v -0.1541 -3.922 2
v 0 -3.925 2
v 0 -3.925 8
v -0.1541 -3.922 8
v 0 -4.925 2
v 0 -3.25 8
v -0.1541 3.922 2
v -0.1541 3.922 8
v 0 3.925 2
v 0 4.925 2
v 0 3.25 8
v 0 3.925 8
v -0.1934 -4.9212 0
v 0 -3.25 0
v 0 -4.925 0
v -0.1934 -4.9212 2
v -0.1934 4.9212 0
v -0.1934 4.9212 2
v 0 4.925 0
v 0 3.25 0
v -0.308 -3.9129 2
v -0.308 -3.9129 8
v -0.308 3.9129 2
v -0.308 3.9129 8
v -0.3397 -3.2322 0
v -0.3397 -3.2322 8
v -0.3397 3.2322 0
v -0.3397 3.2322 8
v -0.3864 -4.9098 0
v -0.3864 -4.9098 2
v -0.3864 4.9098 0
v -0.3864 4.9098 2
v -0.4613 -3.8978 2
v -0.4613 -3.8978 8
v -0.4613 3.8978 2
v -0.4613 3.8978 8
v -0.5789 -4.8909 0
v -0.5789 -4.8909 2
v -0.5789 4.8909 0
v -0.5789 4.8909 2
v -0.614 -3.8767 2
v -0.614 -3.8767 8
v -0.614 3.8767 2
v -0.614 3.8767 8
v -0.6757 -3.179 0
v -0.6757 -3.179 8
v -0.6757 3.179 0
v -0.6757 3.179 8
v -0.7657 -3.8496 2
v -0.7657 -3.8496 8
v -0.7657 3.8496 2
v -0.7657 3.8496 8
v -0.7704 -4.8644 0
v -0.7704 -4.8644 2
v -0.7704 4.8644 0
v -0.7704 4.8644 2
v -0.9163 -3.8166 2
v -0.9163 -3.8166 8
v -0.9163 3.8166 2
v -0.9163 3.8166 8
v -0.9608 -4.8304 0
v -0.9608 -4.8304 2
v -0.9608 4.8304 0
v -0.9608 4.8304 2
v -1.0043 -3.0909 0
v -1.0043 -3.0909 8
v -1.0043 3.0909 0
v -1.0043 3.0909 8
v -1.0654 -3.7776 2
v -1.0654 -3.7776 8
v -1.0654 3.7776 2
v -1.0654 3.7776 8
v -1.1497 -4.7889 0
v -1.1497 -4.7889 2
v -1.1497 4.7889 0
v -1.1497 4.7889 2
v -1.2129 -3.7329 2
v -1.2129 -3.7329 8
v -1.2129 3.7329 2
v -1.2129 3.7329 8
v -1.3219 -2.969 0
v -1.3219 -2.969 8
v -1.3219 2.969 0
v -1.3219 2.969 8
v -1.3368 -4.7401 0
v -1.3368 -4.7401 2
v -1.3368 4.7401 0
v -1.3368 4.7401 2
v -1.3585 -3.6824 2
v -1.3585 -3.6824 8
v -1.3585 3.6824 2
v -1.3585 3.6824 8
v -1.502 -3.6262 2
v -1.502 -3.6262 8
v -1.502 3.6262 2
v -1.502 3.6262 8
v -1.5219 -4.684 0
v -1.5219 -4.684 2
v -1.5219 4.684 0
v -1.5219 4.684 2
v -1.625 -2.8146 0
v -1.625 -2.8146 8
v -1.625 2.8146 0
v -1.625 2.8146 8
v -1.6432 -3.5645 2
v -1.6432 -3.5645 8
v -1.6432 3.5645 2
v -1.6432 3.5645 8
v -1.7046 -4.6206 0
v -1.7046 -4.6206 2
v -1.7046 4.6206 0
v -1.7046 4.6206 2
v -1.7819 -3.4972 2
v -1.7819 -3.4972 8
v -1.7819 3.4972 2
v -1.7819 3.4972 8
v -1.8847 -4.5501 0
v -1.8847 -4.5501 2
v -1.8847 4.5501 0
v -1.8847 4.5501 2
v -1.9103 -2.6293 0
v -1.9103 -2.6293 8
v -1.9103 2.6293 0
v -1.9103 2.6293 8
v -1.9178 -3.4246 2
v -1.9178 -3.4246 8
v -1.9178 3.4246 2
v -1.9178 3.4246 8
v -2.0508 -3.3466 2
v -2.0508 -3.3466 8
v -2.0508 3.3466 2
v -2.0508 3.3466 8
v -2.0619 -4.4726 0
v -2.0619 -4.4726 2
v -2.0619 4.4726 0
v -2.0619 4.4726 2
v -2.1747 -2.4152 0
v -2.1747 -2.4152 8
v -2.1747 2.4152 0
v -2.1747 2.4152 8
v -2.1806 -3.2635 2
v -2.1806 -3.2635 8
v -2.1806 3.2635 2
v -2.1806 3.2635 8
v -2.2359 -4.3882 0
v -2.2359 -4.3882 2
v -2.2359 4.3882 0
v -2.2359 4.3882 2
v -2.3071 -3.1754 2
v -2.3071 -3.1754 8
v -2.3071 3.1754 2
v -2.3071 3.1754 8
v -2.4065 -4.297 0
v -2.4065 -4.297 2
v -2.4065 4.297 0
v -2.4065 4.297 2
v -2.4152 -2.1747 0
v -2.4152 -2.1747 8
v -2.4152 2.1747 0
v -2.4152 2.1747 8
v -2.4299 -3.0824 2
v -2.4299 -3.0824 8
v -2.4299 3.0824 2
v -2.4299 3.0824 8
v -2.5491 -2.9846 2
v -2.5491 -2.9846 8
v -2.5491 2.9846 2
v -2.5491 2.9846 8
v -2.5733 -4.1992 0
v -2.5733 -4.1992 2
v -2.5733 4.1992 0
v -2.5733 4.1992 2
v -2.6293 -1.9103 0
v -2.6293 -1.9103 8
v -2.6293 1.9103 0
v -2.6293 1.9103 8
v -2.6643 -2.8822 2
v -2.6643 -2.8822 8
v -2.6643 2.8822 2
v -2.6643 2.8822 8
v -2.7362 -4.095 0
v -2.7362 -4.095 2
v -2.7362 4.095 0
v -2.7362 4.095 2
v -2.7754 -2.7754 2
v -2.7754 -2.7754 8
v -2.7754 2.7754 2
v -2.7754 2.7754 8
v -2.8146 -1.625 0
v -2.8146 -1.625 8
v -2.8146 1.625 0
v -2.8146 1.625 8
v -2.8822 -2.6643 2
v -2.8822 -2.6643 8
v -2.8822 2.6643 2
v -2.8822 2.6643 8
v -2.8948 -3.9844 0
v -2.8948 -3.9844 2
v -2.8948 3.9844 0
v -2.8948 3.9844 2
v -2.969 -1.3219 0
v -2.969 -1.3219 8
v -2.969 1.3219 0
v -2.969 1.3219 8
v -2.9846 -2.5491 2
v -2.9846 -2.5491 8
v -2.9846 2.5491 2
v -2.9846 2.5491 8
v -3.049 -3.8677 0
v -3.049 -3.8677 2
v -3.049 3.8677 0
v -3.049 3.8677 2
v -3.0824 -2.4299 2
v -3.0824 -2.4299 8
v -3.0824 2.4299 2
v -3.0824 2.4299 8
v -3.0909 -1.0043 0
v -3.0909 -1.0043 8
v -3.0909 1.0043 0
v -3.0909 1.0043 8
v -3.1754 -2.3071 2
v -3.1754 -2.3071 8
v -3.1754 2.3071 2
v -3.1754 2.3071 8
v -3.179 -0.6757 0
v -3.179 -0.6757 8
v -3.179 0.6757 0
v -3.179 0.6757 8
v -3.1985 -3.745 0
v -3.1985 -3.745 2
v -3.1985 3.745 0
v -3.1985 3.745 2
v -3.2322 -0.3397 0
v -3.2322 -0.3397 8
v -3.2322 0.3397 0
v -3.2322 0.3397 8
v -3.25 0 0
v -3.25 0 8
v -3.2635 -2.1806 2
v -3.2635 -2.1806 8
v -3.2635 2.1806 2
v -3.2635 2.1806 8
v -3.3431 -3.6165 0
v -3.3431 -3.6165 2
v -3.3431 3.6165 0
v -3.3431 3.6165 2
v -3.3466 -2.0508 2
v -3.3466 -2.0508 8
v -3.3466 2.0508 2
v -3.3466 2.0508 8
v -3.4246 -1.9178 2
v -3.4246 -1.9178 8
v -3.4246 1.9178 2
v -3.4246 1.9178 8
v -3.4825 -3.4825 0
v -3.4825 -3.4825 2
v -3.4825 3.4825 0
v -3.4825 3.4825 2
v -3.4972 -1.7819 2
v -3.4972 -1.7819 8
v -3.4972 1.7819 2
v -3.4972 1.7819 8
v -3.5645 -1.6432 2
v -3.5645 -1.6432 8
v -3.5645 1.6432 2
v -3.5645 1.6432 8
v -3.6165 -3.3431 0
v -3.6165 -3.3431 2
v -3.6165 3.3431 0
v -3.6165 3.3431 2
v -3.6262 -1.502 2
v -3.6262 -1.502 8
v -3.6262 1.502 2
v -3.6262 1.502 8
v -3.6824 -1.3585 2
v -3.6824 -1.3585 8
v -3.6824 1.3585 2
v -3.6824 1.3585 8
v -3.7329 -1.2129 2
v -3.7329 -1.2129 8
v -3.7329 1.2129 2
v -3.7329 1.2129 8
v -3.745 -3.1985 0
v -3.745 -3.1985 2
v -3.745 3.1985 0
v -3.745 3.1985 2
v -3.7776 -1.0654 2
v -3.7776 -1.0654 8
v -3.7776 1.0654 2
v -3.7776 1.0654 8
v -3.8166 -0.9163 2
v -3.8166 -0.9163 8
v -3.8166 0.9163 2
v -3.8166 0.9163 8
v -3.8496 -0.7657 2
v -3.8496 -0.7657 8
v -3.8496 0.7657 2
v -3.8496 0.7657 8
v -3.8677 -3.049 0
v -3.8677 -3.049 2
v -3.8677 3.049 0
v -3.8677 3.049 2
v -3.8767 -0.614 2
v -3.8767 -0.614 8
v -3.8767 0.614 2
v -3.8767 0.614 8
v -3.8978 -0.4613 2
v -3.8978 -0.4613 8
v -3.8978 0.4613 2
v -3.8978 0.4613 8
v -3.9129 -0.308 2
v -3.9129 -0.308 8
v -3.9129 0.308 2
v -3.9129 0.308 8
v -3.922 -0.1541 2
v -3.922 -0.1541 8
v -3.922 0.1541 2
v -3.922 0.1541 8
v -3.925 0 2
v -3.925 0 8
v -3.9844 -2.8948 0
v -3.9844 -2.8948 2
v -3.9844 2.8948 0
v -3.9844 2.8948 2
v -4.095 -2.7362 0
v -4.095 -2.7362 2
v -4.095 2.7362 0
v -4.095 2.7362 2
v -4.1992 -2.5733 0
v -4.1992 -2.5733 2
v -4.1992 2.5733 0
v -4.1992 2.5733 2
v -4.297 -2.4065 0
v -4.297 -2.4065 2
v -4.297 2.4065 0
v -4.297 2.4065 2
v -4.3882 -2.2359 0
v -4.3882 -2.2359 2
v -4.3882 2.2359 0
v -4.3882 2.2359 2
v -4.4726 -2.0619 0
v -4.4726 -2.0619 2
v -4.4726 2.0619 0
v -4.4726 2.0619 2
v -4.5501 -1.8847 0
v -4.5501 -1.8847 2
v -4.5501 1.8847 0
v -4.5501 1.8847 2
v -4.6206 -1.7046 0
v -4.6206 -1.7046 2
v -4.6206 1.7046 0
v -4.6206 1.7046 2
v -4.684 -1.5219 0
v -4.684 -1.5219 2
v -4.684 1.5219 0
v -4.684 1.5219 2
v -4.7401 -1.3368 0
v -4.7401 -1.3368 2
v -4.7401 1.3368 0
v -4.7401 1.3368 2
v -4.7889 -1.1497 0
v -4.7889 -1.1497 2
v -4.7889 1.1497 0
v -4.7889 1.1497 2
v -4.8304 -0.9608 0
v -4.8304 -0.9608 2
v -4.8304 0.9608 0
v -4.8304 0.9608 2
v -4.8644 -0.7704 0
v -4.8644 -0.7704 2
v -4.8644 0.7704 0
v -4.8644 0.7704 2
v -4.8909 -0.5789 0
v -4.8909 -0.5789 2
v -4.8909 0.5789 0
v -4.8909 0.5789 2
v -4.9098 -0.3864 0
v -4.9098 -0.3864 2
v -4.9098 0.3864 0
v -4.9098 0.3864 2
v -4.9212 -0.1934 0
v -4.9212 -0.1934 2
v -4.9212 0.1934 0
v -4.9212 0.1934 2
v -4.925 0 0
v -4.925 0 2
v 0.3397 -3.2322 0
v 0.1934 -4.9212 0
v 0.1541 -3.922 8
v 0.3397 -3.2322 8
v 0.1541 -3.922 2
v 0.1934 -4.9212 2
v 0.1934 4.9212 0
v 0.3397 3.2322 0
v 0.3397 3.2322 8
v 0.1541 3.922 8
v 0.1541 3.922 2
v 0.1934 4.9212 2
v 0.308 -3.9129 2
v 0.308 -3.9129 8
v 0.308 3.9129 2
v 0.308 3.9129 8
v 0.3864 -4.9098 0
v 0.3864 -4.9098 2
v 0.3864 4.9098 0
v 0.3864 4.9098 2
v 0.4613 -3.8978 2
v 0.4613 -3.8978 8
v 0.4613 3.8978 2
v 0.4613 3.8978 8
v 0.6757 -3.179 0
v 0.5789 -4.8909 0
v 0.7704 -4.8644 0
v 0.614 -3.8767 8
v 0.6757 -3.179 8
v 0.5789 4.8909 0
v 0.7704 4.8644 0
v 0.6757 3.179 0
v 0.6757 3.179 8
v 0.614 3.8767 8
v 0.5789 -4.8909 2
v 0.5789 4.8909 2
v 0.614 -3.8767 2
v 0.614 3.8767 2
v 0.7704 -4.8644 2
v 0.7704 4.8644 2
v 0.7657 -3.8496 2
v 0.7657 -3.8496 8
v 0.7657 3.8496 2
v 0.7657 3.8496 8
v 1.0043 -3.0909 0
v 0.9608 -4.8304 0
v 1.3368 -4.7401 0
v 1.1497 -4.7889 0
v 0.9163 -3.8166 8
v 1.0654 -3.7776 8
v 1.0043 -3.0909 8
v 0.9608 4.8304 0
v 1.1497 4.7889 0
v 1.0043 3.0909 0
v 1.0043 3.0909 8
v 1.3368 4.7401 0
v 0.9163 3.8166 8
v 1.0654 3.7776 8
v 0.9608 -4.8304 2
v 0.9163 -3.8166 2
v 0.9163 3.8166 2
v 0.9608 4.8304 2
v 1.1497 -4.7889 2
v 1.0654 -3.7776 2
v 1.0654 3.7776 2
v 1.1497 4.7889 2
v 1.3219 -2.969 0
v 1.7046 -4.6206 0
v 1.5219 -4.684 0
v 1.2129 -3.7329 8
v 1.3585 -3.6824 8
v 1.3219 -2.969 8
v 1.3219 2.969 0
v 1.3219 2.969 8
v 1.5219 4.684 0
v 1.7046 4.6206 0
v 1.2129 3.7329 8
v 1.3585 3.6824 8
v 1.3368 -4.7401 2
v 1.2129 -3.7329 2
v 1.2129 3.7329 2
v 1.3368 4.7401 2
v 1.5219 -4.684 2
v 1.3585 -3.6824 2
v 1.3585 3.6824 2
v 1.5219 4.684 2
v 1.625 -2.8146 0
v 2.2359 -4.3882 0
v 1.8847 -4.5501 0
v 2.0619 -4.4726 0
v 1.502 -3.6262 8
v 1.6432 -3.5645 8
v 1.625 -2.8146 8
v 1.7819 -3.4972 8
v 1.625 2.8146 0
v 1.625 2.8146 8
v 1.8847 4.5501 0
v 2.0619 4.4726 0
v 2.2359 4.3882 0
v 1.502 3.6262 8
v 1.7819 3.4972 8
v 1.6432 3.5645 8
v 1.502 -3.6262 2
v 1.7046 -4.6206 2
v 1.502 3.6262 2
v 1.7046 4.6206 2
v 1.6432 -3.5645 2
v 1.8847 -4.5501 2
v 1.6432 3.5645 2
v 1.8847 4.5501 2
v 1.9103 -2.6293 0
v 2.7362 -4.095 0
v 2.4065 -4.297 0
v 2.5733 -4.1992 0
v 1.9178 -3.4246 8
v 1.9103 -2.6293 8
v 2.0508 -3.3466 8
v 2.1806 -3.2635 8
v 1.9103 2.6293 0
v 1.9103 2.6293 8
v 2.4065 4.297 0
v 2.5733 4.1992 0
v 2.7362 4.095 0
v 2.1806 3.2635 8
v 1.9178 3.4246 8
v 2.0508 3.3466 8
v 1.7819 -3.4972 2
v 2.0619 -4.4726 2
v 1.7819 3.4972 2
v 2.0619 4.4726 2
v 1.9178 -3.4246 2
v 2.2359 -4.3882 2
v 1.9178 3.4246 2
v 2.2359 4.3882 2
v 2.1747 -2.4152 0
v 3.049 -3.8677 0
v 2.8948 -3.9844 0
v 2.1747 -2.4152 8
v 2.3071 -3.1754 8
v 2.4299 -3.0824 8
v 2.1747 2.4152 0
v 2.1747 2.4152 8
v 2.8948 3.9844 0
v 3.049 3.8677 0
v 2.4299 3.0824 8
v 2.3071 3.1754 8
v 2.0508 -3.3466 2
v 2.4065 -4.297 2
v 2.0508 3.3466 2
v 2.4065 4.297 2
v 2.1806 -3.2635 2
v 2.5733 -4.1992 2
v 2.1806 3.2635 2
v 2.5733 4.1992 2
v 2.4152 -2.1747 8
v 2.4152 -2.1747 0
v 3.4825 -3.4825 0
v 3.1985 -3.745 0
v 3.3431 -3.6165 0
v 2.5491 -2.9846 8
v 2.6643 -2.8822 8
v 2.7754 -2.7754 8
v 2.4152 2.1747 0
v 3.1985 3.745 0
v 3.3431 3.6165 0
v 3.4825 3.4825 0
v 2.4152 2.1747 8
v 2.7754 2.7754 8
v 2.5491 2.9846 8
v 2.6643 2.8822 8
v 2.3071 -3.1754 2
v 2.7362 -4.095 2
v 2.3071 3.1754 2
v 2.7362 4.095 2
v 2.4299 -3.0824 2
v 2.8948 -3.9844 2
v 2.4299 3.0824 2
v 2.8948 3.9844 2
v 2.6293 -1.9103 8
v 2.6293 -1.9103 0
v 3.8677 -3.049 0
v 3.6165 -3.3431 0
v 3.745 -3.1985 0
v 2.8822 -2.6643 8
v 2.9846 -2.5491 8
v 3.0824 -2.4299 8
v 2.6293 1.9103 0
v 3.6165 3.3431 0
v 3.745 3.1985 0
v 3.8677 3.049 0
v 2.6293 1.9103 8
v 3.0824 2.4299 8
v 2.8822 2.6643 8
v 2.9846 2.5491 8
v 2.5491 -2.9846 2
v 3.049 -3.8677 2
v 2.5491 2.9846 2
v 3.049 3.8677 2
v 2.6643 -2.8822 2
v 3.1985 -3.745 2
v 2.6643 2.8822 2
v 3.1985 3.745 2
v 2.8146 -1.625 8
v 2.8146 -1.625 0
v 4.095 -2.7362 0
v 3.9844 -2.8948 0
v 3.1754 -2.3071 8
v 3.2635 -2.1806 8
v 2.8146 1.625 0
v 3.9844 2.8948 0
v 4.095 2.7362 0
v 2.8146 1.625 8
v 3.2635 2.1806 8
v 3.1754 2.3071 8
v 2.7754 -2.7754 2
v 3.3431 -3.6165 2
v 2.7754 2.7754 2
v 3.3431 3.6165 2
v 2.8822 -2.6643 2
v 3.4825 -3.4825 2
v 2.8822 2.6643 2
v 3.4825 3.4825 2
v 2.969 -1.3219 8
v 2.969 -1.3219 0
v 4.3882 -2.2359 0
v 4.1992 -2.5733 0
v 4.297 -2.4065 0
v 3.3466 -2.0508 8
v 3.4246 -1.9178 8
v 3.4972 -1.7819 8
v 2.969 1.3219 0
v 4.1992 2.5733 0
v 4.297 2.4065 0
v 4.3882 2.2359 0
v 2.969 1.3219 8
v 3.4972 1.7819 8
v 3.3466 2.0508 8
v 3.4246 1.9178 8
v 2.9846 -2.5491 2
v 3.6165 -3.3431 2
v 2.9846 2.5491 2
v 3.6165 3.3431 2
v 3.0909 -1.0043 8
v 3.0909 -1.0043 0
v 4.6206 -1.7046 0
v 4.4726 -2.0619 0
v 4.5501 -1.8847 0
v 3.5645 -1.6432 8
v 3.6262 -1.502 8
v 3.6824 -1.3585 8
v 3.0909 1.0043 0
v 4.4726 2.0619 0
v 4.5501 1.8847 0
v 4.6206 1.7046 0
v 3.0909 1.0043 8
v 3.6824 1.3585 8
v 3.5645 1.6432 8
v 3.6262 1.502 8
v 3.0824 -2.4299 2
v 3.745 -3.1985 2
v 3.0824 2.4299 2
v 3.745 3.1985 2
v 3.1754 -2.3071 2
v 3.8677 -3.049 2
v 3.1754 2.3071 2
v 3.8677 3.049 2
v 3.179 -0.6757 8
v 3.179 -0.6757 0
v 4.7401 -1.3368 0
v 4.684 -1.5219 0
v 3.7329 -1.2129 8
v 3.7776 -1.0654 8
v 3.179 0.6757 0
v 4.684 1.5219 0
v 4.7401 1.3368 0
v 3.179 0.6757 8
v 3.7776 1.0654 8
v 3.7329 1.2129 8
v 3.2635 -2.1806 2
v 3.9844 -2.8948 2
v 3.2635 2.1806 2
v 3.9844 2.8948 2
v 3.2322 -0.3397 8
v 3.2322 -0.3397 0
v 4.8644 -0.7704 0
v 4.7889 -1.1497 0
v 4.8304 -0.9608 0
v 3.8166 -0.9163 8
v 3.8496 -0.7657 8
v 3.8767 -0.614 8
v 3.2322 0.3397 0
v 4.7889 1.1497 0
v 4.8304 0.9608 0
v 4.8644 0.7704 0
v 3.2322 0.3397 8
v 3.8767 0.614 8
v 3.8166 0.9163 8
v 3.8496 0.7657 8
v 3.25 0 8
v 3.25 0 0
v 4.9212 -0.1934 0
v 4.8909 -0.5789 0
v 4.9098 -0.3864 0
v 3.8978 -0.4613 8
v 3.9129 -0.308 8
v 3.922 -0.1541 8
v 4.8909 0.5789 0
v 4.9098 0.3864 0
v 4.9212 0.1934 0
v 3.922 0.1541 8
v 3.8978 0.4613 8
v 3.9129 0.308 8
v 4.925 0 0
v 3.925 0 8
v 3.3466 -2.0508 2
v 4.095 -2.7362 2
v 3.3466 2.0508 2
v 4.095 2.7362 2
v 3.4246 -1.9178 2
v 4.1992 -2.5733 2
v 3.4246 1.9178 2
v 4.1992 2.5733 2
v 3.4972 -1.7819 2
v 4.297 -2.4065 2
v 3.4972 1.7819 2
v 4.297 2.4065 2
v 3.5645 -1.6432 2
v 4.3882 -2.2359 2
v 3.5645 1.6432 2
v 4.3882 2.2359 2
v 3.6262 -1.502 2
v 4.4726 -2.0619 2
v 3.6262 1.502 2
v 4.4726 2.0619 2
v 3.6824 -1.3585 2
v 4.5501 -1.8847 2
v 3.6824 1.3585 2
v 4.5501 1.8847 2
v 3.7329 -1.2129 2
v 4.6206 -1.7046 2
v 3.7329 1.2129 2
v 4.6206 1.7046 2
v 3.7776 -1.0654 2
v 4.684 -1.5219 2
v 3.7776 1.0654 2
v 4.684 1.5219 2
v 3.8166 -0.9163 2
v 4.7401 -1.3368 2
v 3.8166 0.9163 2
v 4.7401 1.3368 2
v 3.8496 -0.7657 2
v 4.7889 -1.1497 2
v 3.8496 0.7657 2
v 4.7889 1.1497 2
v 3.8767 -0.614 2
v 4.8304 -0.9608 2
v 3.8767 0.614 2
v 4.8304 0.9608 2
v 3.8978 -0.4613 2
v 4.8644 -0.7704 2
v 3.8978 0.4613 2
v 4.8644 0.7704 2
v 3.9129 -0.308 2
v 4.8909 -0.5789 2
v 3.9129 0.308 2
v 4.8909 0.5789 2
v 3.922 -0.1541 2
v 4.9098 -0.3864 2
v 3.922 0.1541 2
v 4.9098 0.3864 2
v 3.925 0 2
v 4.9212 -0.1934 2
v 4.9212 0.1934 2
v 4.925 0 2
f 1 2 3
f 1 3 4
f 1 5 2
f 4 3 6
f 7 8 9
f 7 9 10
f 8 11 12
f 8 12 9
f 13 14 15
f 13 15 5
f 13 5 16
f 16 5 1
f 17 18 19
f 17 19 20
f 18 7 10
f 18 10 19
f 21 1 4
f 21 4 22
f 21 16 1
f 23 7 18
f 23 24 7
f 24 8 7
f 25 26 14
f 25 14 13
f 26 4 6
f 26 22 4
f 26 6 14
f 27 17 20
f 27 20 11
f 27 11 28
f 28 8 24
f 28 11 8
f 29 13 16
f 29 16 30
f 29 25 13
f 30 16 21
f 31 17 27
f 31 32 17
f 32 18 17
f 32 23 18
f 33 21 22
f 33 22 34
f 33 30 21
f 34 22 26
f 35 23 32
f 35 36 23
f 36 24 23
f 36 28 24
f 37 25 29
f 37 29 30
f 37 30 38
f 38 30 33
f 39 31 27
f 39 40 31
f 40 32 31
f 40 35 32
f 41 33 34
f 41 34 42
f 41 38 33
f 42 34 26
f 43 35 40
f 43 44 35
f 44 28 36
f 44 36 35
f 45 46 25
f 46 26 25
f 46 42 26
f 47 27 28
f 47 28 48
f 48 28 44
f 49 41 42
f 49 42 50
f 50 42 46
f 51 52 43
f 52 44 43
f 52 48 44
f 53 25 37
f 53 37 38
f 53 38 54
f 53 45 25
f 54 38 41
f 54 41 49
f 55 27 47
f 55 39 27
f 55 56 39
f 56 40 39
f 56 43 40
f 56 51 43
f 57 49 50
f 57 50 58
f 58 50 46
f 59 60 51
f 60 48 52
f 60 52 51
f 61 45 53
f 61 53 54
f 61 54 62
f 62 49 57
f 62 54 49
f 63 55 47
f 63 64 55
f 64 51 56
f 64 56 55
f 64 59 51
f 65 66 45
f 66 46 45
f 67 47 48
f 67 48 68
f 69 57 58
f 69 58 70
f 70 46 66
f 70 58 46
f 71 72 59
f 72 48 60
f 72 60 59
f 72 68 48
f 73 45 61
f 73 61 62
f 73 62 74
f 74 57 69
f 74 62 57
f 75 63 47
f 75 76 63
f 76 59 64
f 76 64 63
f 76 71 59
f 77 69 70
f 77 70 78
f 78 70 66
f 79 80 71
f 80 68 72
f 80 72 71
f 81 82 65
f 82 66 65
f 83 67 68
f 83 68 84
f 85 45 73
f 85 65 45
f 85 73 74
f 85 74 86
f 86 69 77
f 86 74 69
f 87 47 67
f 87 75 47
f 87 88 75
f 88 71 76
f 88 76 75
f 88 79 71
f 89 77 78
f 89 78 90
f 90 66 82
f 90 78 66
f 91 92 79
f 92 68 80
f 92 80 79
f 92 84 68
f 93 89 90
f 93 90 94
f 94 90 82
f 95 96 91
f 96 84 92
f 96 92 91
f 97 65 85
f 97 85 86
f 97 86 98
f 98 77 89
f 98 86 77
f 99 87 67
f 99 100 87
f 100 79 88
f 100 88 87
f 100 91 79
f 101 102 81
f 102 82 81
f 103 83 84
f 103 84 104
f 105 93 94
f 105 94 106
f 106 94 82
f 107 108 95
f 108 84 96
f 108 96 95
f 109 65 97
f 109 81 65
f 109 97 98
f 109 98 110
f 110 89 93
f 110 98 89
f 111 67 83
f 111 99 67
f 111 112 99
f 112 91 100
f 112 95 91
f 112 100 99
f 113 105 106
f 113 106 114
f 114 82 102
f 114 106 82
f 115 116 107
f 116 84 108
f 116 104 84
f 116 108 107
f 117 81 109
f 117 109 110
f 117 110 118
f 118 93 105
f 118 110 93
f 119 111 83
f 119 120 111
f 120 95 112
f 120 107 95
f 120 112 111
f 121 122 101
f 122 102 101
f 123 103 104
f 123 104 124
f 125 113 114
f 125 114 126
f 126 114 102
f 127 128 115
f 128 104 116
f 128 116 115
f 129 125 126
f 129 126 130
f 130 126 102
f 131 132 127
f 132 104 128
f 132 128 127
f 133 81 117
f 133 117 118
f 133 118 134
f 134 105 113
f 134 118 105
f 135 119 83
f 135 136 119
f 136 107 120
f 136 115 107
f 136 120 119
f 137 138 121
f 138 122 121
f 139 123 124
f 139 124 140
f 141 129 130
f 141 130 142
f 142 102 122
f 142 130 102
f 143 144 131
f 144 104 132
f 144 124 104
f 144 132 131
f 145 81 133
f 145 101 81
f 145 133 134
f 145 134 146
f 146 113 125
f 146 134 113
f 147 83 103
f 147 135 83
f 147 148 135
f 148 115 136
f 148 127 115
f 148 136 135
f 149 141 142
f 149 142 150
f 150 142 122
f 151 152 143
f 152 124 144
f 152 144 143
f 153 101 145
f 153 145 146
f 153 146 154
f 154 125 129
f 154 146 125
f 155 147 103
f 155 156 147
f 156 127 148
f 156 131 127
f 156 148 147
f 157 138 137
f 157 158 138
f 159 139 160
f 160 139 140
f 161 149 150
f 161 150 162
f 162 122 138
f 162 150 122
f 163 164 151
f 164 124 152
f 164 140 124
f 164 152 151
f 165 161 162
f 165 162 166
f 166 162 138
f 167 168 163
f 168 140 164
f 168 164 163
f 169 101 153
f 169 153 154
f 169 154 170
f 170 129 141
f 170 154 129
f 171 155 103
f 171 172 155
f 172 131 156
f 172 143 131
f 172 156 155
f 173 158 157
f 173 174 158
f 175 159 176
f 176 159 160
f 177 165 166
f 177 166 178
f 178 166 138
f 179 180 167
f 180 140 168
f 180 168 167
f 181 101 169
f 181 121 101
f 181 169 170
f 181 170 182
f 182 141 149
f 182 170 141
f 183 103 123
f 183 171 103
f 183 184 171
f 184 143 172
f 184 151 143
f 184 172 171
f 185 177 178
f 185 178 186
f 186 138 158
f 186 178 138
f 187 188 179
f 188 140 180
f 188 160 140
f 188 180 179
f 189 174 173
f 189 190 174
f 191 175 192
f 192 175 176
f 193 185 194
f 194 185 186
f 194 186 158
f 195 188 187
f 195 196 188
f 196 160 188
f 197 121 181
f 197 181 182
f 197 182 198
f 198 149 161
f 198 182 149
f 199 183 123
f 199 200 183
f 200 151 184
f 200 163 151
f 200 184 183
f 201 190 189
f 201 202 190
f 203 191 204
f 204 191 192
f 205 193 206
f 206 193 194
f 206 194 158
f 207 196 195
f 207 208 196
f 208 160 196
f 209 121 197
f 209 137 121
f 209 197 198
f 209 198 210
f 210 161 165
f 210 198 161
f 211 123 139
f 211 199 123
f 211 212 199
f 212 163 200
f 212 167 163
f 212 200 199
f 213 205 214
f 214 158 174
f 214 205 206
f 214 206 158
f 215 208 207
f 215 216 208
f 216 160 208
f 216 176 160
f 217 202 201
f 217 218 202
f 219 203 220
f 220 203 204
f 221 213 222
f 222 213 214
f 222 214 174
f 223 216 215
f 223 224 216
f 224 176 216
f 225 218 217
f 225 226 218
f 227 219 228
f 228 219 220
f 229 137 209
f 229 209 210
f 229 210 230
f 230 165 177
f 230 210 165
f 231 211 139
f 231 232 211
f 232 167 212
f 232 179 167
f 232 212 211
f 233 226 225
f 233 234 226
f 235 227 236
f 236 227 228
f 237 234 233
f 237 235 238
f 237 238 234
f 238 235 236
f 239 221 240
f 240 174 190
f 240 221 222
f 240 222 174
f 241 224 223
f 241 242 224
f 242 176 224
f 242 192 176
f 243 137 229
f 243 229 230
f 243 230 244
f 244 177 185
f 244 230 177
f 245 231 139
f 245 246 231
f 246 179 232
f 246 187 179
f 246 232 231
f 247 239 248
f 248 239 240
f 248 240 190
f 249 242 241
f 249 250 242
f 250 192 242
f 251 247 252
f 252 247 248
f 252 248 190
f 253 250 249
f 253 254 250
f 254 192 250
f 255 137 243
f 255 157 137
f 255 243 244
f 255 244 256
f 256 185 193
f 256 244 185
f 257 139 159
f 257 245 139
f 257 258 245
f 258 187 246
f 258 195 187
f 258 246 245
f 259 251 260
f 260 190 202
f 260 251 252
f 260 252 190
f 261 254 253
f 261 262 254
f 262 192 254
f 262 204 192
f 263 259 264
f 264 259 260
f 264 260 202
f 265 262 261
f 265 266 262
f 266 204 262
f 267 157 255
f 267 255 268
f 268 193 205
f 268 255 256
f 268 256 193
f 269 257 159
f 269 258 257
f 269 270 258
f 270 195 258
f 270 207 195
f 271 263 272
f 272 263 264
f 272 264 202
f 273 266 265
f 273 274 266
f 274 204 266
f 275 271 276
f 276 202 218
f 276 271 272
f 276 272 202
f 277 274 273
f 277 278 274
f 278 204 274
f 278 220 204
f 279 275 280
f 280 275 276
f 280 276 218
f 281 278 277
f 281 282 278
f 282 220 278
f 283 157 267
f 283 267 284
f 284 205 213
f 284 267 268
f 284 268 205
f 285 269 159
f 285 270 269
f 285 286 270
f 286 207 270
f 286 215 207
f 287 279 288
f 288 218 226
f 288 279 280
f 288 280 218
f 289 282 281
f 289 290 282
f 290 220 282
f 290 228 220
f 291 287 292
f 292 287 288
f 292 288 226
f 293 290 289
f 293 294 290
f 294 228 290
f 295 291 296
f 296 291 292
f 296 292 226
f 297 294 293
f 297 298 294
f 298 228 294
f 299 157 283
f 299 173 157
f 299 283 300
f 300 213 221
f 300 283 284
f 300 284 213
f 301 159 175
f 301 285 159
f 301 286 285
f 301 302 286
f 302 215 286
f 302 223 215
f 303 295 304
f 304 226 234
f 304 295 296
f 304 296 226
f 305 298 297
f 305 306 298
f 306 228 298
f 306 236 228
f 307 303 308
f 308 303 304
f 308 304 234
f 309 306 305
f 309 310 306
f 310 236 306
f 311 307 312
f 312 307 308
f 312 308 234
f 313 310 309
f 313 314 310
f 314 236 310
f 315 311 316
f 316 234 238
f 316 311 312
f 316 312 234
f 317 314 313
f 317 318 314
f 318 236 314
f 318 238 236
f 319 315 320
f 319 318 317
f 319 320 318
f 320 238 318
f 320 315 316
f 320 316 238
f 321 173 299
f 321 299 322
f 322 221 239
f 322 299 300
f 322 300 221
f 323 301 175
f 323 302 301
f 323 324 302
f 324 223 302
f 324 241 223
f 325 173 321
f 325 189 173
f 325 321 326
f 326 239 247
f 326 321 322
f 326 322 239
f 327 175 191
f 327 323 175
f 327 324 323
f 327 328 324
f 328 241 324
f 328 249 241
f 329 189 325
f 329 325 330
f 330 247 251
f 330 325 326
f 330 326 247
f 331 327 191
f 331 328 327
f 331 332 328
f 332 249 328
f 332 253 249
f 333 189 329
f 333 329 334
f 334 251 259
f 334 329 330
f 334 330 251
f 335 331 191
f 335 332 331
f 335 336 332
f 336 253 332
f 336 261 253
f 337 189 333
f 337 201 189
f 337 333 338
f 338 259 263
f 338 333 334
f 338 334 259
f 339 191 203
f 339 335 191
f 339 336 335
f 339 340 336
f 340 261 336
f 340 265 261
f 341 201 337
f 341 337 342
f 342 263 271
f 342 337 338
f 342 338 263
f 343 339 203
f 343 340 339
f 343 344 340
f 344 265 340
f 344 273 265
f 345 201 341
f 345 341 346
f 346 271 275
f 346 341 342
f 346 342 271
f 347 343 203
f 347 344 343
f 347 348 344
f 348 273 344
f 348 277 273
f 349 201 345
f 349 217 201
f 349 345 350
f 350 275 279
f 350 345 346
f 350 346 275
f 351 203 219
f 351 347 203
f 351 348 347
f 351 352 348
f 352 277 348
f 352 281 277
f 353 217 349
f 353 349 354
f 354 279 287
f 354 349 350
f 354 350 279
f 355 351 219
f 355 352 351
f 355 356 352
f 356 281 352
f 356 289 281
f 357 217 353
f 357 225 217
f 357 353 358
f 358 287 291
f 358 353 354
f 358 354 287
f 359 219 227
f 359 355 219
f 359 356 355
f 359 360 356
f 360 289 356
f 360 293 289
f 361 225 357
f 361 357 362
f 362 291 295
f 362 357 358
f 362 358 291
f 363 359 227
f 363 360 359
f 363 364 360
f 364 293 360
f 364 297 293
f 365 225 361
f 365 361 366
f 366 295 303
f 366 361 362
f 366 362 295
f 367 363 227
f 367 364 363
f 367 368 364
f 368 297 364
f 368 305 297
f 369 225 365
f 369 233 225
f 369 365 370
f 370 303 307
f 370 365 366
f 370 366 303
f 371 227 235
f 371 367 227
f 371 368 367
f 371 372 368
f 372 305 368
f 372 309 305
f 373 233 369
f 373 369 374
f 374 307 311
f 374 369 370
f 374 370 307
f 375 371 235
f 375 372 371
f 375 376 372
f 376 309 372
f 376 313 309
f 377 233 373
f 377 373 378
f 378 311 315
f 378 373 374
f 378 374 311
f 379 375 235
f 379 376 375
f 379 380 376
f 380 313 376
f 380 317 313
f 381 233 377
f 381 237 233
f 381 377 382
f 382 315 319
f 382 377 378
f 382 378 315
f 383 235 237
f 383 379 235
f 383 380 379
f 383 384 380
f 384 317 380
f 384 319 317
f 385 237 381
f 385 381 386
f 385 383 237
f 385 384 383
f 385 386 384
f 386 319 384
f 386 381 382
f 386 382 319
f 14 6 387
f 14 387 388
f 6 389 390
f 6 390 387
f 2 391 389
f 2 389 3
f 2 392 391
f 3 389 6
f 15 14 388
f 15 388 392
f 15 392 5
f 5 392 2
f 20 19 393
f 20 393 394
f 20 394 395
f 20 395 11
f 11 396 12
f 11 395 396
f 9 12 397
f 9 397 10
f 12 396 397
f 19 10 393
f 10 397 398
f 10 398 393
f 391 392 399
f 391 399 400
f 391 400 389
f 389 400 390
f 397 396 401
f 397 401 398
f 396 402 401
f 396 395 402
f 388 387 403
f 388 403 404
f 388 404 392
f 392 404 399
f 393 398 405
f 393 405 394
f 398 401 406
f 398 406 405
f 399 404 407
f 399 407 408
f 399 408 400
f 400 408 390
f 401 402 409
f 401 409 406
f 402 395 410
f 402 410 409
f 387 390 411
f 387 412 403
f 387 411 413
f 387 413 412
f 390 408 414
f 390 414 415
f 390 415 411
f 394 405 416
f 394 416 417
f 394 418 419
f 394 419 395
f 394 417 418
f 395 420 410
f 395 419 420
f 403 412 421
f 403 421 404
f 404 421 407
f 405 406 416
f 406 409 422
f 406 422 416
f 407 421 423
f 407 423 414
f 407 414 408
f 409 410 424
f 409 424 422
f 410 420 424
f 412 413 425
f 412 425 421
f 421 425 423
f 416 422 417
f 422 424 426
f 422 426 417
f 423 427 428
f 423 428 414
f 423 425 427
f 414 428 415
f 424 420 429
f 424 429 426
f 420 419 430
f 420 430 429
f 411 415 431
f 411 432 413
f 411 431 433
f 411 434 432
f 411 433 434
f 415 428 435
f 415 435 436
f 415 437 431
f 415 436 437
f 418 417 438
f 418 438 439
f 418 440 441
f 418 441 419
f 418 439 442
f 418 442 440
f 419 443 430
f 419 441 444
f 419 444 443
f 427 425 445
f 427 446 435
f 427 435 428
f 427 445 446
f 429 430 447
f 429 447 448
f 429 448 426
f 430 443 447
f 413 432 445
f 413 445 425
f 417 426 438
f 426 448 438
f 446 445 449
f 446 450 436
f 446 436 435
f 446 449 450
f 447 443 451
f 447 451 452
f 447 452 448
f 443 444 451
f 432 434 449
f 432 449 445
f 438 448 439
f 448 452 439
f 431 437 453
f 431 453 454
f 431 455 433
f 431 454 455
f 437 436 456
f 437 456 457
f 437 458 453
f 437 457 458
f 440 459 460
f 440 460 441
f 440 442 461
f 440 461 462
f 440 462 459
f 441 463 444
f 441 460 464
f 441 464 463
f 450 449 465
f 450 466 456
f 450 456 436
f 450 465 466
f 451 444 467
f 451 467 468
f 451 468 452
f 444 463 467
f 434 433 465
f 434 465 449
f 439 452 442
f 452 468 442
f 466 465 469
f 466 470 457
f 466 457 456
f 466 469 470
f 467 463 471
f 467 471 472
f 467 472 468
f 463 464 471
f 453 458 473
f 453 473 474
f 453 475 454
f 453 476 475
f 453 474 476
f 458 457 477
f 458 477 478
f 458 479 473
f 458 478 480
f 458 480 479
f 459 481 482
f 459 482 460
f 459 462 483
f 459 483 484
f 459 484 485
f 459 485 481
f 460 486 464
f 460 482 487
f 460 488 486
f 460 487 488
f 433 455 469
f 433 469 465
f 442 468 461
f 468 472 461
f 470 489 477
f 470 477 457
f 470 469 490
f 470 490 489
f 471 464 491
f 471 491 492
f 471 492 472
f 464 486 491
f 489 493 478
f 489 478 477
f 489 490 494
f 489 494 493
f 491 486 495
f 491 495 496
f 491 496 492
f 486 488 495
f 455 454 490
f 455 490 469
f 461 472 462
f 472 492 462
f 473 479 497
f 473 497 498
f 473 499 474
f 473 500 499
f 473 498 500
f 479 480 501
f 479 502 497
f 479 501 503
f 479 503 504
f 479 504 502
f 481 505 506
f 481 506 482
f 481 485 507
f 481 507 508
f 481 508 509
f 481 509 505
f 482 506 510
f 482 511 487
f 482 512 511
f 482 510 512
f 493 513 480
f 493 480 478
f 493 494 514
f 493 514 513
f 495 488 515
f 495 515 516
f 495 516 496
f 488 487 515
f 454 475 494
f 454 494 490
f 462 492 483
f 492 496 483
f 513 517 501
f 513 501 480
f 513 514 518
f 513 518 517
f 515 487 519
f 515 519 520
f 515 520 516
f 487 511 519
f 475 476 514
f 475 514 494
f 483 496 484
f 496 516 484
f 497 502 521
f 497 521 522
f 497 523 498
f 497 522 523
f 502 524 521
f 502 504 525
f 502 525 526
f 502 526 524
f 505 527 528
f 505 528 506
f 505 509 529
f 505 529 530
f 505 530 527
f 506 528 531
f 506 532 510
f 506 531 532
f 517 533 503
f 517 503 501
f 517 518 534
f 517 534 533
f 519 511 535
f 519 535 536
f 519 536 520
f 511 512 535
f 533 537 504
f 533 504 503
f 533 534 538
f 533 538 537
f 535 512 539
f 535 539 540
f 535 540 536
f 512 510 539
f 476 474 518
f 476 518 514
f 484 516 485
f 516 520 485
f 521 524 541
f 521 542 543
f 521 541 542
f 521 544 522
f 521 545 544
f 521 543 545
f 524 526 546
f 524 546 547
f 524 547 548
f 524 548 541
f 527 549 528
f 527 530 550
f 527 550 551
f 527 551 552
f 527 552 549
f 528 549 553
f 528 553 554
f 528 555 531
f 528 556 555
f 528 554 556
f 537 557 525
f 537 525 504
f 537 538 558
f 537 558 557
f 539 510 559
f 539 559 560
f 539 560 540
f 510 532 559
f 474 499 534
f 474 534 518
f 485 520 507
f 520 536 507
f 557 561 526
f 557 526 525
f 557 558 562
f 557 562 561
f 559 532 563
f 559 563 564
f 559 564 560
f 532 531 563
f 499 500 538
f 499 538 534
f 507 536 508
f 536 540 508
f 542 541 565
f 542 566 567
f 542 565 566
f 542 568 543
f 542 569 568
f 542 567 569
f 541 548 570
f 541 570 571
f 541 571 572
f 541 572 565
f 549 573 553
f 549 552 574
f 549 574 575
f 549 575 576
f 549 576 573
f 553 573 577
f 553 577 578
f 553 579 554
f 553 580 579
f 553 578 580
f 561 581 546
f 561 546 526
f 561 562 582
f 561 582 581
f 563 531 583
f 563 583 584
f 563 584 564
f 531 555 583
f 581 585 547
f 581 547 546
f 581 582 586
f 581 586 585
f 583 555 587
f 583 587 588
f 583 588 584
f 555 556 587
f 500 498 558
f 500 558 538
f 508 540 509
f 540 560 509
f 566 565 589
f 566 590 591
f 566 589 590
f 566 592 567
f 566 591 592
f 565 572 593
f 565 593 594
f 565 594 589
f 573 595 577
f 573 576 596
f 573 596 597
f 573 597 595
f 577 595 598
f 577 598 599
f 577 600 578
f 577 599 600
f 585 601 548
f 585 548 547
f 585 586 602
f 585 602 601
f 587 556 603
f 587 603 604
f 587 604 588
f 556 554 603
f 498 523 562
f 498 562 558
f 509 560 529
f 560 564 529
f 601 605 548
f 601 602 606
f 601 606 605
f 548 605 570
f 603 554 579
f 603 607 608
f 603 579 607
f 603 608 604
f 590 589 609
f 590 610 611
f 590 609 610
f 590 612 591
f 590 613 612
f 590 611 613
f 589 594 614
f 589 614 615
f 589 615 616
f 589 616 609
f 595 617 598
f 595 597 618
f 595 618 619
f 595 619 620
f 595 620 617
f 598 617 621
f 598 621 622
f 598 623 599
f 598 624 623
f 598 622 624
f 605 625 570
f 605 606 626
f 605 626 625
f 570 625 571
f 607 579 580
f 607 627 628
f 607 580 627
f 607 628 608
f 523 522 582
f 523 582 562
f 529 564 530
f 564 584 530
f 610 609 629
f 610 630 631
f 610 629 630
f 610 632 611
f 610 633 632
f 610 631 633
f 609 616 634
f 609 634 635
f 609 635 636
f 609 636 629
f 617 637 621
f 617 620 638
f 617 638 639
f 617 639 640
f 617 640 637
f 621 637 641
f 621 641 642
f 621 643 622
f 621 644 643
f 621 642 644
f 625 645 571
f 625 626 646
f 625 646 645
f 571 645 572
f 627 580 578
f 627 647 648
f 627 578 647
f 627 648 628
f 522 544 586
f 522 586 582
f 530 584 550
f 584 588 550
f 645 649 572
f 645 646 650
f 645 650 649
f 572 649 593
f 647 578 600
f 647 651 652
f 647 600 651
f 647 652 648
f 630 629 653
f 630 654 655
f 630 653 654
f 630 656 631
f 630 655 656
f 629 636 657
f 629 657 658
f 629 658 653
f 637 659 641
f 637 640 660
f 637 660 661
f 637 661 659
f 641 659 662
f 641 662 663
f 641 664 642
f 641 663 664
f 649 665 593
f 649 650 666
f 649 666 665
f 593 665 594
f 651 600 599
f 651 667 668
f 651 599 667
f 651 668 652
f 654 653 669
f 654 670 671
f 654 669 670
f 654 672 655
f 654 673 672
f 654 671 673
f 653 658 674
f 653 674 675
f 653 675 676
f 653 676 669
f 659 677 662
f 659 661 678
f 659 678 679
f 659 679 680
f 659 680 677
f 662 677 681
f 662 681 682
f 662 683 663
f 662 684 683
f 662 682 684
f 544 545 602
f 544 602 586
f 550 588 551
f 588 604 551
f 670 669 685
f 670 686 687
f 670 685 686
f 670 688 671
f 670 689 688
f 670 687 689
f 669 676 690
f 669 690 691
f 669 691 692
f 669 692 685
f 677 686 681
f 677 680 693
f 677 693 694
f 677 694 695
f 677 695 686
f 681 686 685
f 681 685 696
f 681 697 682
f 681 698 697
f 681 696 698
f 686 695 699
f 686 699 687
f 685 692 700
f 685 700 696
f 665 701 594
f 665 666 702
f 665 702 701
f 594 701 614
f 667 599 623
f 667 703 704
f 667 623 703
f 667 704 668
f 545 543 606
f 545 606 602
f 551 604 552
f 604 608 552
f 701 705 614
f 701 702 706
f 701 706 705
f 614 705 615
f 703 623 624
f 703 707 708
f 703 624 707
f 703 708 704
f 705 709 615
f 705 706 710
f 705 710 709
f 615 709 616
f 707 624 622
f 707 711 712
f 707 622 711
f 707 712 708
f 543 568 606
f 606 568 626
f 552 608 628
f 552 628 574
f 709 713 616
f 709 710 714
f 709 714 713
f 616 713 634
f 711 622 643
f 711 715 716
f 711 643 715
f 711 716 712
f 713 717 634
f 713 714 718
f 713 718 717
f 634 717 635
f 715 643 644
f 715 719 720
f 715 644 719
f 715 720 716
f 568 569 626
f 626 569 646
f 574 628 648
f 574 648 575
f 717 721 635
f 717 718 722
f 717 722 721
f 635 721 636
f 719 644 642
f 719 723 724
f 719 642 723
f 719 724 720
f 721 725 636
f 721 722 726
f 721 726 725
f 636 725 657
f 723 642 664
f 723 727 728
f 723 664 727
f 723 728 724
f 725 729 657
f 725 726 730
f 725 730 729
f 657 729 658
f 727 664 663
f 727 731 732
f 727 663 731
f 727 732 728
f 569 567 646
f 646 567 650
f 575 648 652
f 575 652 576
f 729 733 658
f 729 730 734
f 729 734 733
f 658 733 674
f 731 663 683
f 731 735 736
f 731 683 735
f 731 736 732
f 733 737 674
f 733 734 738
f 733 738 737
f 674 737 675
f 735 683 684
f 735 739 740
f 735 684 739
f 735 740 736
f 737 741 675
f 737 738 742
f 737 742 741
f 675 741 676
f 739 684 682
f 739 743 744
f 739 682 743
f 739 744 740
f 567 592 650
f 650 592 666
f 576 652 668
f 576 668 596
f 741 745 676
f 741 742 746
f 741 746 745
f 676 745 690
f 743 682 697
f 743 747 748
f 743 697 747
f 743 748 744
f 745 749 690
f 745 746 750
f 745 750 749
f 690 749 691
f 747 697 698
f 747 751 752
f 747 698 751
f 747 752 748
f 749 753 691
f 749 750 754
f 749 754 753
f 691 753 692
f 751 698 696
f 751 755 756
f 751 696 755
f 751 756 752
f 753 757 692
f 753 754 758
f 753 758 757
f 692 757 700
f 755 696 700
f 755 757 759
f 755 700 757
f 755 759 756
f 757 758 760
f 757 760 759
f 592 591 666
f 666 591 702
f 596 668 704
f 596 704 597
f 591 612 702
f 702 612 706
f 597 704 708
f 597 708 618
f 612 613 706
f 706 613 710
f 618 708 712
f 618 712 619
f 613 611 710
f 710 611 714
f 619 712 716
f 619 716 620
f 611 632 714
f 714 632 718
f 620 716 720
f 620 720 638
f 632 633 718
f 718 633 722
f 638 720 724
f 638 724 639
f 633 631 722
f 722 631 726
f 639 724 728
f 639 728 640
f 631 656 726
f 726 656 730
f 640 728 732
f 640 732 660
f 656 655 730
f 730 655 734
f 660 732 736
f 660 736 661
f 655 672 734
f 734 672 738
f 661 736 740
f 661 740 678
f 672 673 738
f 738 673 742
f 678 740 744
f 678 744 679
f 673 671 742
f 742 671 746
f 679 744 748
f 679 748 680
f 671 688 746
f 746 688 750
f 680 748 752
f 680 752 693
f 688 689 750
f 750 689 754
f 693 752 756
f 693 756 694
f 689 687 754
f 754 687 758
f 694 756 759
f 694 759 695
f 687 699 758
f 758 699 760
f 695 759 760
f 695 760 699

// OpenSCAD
// file: ../parameters.scad
maximum_printable_size = 150;

layer_thickness = 0.3;
global_clearance = 0.5;

platform_base_diameter = 400; // Průměr ukotvení válců spodní platformy
platform_base_thickness = 20;
platform_cylinder_medium_length = 250;  // délka pneumatického válce s pístem vysunutým do poloviny rozsahu
platform_base_cylinder_spacing = 38;    //rozestupy spodního a horního ukotvení válců.
platform_top_cylinder_spacing = 30;
platform_top_diameter = 150;   // Průměr horní základny (vdálenost od středu základny do středu kulového kloubu ke kterému je uchycen pneumatický válec)


// screw length step - minimum difference in length between two types of screws
basic_screw_length = 5;


//Screw diameter and nut for M10 [mm]
M10_screw_diameter = 10.4;
M10_head_height = 10;
M10_head_diameter = 16+0.5;
M10_nut_height = 10.5;
M10_nut_diameter = 25.5;
M10_nut_pocket = 22.3;

//Screw diameter for M8 [mm]
M8_screw_diameter = 8.6;
M8_head_height = 8;
M8_head_diameter = 13.5;
M8_nut_height = 7.5;
M8_square_nut_thin_height = 4.5;
M8_nut_diameter = 14.4 + 0.5;
M8_nut_pocket = 13 + 0.5;
M8_washer_diameter = 16;
M8_washer_thickness = 1.5;


//Screw diameter and nut for M6 [mm]
M6_screw_diameter=6.5;
M6_head_diameter = 10+0.5;
M6_head_height = 6;
M6_nut_height = 4.9;
M6_nut_diameter = 11.8;
M6_nut_pocket = 10.4;
M6_square_nut_height = 3;
M6_square_nut_diameter = 10;

//Screw diameter and nut for M5 [mm]
M5_screw_diameter=5.5;
M5_head_height = 5;
M5_head_diameter = 13+0.5;
M5_nut_height = 4.5;
M5_nut_diameter = 9.4;
M5_nut_pocket = 8.4;

//Screw diameter and nut for M4 [mm]
M4_screw_diameter=4.5;
M4_screw_head_height = 4;
M4_nut_height = 3.2;
M4_nut_diameter = 8.4;
M4_nut_pocket = 7.5;

//Screw diameter and nut for M3 [mm]
M3_screw_diameter = 3.2;
M3_nut_height = 2.7;
M3_nut_diameter = 6.6;
M3_nut_pocket = 5.6;
M3_screw_head_height = 3;

//Screw diameter and nut for M2,5 [mm]
M2_5_screw_diameter = 2.7;
M2_5_nut_height = 2.3;
M2_5_nut_diameter = 6;
M2_5_nut_pocket = 5.5;

// kulove lozisko

bearing_efsm_08_h = 33+1;
bearing_efsm_08_m = 22;
bearing_efsm_08_db = 18;
bearing_efsm_08_ag = 10.5;
bearing_efsm_08_n = M4_screw_diameter;
bearing_efsm_08_a1 = 5.5;
bearing_efsm_08_d = 8.25;
bearing_efsm_08_B = 8; // ball height

bearing_efsm_10_h = 38+1;
bearing_efsm_10_m = 26;
bearing_efsm_10_db = 21.9;
bearing_efsm_10_ag = 12+0.2;
bearing_efsm_10_n = M5_screw_diameter;
bearing_efsm_10_a1 = 6.5;
bearing_efsm_10_d = 10.25;


bearing_efsm_12_width = 40+1;
bearing_efsm_12_h = bearing_efsm_12_width;
bearing_efsm_12_boltd = 28/2; // polovina vzdalenosti mezi srouby
bearing_efsm_12_m = bearing_efsm_12_boltd*2;
bearing_efsm_12_db = 25;
bearing_efsm_12_ag = 13;
bearing_efsm_12_a1 = 7;
bearing_efsm_12_n = M5_screw_diameter;
bearing_efsm_12_d = 12.15;
bearing_efsm_12_B = 10; // ball height
bearing_efsm_space = 1;

bearing_efsm_17_width = 54+1;
bearing_efsm_17_h = bearing_efsm_17_width;
bearing_efsm_17_boltd = 38/2; // polovina vzdalenosti mezi srouby
bearing_efsm_17_m = bearing_efsm_17_boltd*2;
bearing_efsm_17_db = 35;
bearing_efsm_17_ag = 18;
bearing_efsm_17_n = M6_screw_diameter;
bearing_efsm_17_a1 = 10;
bearing_efsm_17_B = 17; // ball height

//limcove lozisko
bearing_EFOM_10_L=26; //celkova sirka zakladny
bearing_EFOM_10_d1=10.3;//diametr otvoru real=10 mm
bearing_EFOM_10_dB=22;//diametr vystupku pro ulozeni lozika
bearing_EFOM_10_H=52;//celková delka zakladny
bearing_EFOM_10_J=36;// hole pitch
bearing_EFOM_10_A1=6.5;//vyska pouzdra
bearing_EFOM_10_Ag=12;//celkova vyska
bearing_EFOM_10_N1=5;//sirka otvoru pro sroub
bearing_EFOM_10_N2=8;//delka otvoru pro sroub
bearing_EFOM_10_m=36;//roztec der pro sroub
bearing_EFOM_10_h=9;//vyska lozika


608_bearing_outer_diameter = 22.3;
608_bearing_inner_diameter = 16;
608_bearing_thickness = 7.1;


// 20 KG servo parameters

servo_20kg_axis_offset = 9.375; // jak je osa mimo stredu
servo_20kg_body_x = 42;
servo_20kg_body_y = 21;
servo_20kg_body_z = 40;
servo_20kg_thread_x = 49/2;
servo_20kg_thread_y = 10/2;
servo_20kg_body_below = 10; // jak hluboko je tělo serva pod drzaky na srouby
servo_20kg_below = 25.8; // jak hluboko je páka serva pod drzaky na srouby

servo_20kg_bolt_d = 2.5+0.3;
servo_20kg_nut_d = 5+0.3;


//strain gauge
strain_gauge_width = 12.7;
strain_gauge_length = 75.1;
strain_gauge_screw_distance = 10;

//ALU profile
ALU_profile_width = 30.5;
ALU_profile_holder_wall_thickness = 3;
ALU_profile_groove_width = 8;

//pillow block bearing
//https://www.igus.eu/product/372
//Part no. KSTM-08
KSTM08_screws_distance = 33;         //m
KSTM08_screws_holes_diameter = 4.5;  //d2
KSTM08_flange_thickness = 6;         //h3
KSTM08_case_width = 9;               //C1
KSTM08_case_length = 47;             //a
KSTM08_ball_width = 12;              //B
KSTM08_ball_hole_diameter = 7.85;    //d1


//ložiska pro malý rotor
bearing_outer_diameter = 10.2;    // Rozměr B1 v nákresu s přídavkem na toleranci otvoru
bearing_thickness = 4;        // Rozměr B2 v nákresu
//bearing_shaft_length = 19.5;    // Rozměr B3 v nákresu, Originalni hodnota 19.5
bearing_shaft_length = 20;    // Rozměr B3 v nákresu


//parametry víčka s telemetrickou anténou
S01_sila_materialu=1.2;
S01_vyska_horni_zavit=10;
S01_hloubka_zavitu=4;
S01_prumer_vnitrni=50;
LO_spodni_prumer=17.2;
LO_vyska_bez_krytu=15;
S01_tolerance_zavit=1.5;
R01_vyska_prekryti_statoru=10;

g3_0_cone1 = 70;
g3_0_srcew_dist = 55;
// main file
include <../parameters.scad>

height = 2;

module 888_5013() {
    difference() {
        union() {
            cylinder(d=KSTM08_ball_hole_diameter, h=KSTM08_ball_width/2+height, $fn=160);
            cylinder(d=KSTM08_ball_hole_diameter+2, h=height, $fn=160);
        }
        cylinder(d=M6_screw_diameter, h=1000, $fn=60, center=true);
    }
}

888_5013();
